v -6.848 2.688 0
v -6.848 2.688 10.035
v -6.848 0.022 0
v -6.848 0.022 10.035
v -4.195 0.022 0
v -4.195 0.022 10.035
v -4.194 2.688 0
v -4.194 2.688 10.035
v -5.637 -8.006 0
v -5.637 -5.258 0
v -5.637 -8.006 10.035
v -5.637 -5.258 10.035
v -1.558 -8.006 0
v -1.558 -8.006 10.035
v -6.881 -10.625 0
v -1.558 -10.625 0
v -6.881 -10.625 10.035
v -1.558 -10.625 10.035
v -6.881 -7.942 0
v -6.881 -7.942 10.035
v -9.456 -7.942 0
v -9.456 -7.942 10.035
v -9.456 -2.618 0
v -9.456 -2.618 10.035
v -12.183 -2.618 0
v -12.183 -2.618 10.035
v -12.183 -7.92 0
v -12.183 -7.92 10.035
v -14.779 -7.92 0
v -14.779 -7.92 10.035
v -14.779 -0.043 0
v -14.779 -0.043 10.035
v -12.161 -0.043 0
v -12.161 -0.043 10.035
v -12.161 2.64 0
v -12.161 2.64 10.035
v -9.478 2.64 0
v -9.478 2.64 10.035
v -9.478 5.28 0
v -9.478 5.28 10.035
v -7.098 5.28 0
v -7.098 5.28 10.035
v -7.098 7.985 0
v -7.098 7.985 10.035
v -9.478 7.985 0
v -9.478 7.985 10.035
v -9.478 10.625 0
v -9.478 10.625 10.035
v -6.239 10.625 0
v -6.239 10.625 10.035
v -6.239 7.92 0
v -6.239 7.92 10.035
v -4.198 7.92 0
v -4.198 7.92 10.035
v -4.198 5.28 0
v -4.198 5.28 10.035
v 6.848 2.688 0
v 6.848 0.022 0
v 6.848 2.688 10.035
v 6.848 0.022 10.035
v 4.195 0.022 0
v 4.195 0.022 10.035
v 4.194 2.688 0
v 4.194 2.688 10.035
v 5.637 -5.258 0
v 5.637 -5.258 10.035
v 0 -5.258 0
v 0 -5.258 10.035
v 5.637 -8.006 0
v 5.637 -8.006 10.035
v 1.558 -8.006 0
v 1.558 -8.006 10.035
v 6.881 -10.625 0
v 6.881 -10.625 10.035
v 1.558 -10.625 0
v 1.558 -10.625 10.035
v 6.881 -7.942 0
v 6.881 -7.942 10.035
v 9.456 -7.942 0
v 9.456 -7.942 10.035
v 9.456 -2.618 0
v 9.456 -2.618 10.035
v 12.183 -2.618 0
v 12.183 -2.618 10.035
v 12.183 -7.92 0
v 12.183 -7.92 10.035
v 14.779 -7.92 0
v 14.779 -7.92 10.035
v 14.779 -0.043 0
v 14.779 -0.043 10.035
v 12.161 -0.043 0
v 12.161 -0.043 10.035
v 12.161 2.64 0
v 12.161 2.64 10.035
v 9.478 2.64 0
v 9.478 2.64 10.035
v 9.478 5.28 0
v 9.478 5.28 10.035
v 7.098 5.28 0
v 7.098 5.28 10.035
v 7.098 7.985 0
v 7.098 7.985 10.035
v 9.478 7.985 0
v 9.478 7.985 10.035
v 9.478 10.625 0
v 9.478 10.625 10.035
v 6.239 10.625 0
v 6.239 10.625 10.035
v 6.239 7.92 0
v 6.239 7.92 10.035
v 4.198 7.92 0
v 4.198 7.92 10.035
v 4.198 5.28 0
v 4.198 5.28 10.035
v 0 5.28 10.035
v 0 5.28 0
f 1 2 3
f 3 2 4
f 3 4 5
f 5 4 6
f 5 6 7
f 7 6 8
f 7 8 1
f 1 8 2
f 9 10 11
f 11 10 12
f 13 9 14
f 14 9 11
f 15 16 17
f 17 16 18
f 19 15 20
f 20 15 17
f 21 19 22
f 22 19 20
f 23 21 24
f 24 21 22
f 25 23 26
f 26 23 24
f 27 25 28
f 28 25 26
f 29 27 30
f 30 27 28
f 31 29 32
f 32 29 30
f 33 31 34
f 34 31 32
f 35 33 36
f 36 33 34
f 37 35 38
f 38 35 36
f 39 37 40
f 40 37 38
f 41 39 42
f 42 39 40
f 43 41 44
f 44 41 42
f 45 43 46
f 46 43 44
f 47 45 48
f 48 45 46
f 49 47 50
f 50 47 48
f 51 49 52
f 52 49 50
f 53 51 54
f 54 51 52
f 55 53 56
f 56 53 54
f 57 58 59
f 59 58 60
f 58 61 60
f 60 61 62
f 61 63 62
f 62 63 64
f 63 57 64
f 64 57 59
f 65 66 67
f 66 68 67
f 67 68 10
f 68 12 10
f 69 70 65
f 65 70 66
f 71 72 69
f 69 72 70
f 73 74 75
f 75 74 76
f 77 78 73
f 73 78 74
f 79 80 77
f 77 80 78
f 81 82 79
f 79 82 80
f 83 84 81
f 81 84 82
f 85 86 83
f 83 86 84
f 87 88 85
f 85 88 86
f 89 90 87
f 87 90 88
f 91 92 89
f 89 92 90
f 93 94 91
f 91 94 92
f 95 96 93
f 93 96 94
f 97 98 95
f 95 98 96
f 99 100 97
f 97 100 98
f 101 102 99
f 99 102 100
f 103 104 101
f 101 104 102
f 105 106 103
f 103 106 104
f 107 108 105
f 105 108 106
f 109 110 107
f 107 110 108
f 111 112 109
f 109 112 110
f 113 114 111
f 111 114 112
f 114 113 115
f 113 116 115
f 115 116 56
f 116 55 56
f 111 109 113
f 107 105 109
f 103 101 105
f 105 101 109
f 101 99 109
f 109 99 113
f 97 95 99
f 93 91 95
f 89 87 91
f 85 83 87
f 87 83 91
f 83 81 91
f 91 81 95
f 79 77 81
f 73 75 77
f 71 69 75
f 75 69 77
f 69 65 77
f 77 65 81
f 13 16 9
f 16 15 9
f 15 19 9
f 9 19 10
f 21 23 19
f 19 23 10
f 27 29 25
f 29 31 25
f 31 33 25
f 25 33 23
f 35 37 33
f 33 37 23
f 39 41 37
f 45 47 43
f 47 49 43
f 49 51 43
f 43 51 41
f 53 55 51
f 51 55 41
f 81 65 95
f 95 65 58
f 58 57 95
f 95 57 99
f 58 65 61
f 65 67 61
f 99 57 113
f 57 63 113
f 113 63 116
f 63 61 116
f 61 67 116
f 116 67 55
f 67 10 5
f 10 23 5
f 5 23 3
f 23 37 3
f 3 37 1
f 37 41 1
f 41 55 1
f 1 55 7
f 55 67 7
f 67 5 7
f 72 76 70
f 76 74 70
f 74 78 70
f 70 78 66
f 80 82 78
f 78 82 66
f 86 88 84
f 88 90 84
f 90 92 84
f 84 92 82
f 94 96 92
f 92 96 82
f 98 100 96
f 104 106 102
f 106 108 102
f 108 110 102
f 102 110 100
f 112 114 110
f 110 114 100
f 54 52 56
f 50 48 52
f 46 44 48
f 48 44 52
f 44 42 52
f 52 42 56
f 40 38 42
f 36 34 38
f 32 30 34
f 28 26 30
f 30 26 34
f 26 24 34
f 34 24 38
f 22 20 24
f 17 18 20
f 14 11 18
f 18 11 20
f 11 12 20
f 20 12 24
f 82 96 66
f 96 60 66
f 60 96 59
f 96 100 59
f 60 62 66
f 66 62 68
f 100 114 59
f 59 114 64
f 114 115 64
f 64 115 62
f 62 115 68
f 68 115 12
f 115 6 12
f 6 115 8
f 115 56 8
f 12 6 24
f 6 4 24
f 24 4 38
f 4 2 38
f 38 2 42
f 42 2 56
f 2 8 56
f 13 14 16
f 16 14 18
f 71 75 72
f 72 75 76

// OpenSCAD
module invaders_v2_2() 
{
	polyhedron(
		points=[
			[-6.848057, 2.68762, 1.037121e-05],
			[-6.848057, 2.68762, 10.03545],
			[-6.848057, 0.02210236, 1.037121e-05],
			[-6.848057, 0.02210236, 1.037121e-05],
			[-6.848057, 2.68762, 10.03545],
			[-6.848057, 0.02210236, 10.03545],
			[-6.848057, 0.02210236, 1.037121e-05],
			[-6.848057, 0.02210236, 10.03545],
			[-4.195431, 0.02210236, 1.037121e-05],
			[-4.195431, 0.02210236, 1.037121e-05],
			[-6.848057, 0.02210236, 10.03545],
			[-4.195431, 0.02210236, 10.03545],
			[-4.195431, 0.02210236, 1.037121e-05],
			[-4.195431, 0.02210236, 10.03545],
			[-4.194324, 2.68762, 0.0],
			[-4.194324, 2.68762, 0.0],
			[-4.195431, 0.02210236, 10.03545],
			[-4.194324, 2.68762, 10.03545],
			[-4.194324, 2.68762, 0.0],
			[-4.194324, 2.68762, 10.03545],
			[-6.848057, 2.68762, 1.037121e-05],
			[-6.848057, 2.68762, 1.037121e-05],
			[-4.194324, 2.68762, 10.03545],
			[-6.848057, 2.68762, 10.03545],
			[-5.636768, -8.006418, 5.245209e-06],
			[-5.636768, -5.258268, 5.245209e-06],
			[-5.636768, -8.006418, 10.03545],
			[-5.636768, -8.006418, 10.03545],
			[-5.636768, -5.258268, 5.245209e-06],
			[-5.636768, -5.258268, 10.03545],
			[-1.557995, -8.006418, 5.245209e-06],
			[-5.636768, -8.006418, 5.245209e-06],
			[-1.557995, -8.006418, 10.03545],
			[-1.557995, -8.006418, 10.03545],
			[-5.636768, -8.006418, 5.245209e-06],
			[-5.636768, -8.006418, 10.03545],
			[-6.881184, -10.62473, 5.245209e-06],
			[-1.557995, -10.62473, 5.245209e-06],
			[-6.881184, -10.62473, 10.03545],
			[-6.881184, -10.62473, 10.03545],
			[-1.557995, -10.62473, 5.245209e-06],
			[-1.557995, -10.62473, 10.03545],
			[-6.881184, -7.9415, 5.245209e-06],
			[-6.881184, -10.62473, 5.245209e-06],
			[-6.881184, -7.9415, 10.03545],
			[-6.881184, -7.9415, 10.03545],
			[-6.881184, -10.62473, 5.245209e-06],
			[-6.881184, -10.62473, 10.03545],
			[-9.456219, -7.9415, 5.245209e-06],
			[-6.881184, -7.9415, 5.245209e-06],
			[-9.456219, -7.9415, 10.03545],
			[-9.456219, -7.9415, 10.03545],
			[-6.881184, -7.9415, 5.245209e-06],
			[-6.881184, -7.9415, 10.03545],
			[-9.456219, -2.618313, 5.245209e-06],
			[-9.456219, -7.9415, 5.245209e-06],
			[-9.456219, -2.618313, 10.03545],
			[-9.456219, -2.618313, 10.03545],
			[-9.456219, -7.9415, 5.245209e-06],
			[-9.456219, -7.9415, 10.03545],
			[-12.18273, -2.618313, 5.245209e-06],
			[-9.456219, -2.618313, 5.245209e-06],
			[-12.18273, -2.618313, 10.03545],
			[-12.18273, -2.618313, 10.03545],
			[-9.456219, -2.618313, 5.245209e-06],
			[-9.456219, -2.618313, 10.03545],
			[-12.18273, -7.919863, 5.245209e-06],
			[-12.18273, -2.618313, 5.245209e-06],
			[-12.18273, -7.919863, 10.03545],
			[-12.18273, -7.919863, 10.03545],
			[-12.18273, -2.618313, 5.245209e-06],
			[-12.18273, -2.618313, 10.03545],
			[-14.77941, -7.919863, 5.245209e-06],
			[-12.18273, -7.919863, 5.245209e-06],
			[-14.77941, -7.919863, 10.03545],
			[-14.77941, -7.919863, 10.03545],
			[-12.18273, -7.919863, 5.245209e-06],
			[-12.18273, -7.919863, 10.03545],
			[-14.77941, -0.04327393, 5.245209e-06],
			[-14.77941, -7.919863, 5.245209e-06],
			[-14.77941, -0.04327393, 10.03545],
			[-14.77941, -0.04327393, 10.03545],
			[-14.77941, -7.919863, 5.245209e-06],
			[-14.77941, -7.919863, 10.03545],
			[-12.16109, -0.04327393, 5.245209e-06],
			[-14.77941, -0.04327393, 5.245209e-06],
			[-12.16109, -0.04327393, 10.03545],
			[-12.16109, -0.04327393, 10.03545],
			[-14.77941, -0.04327393, 5.245209e-06],
			[-14.77941, -0.04327393, 10.03545],
			[-12.16109, 2.639957, 5.245209e-06],
			[-12.16109, -0.04327393, 5.245209e-06],
			[-12.16109, 2.639957, 10.03545],
			[-12.16109, 2.639957, 10.03545],
			[-12.16109, -0.04327393, 5.245209e-06],
			[-12.16109, -0.04327393, 10.03545],
			[-9.477863, 2.639957, 5.245209e-06],
			[-12.16109, 2.639957, 5.245209e-06],
			[-9.477863, 2.639957, 10.03545],
			[-9.477863, 2.639957, 10.03545],
			[-12.16109, 2.639957, 5.245209e-06],
			[-12.16109, 2.639957, 10.03545],
			[-9.477863, 5.279907, 5.245209e-06],
			[-9.477863, 2.639957, 5.245209e-06],
			[-9.477863, 5.279907, 10.03545],
			[-9.477863, 5.279907, 10.03545],
			[-9.477863, 2.639957, 5.245209e-06],
			[-9.477863, 2.639957, 10.03545],
			[-7.097576, 5.279907, 5.245209e-06],
			[-9.477863, 5.279907, 5.245209e-06],
			[-7.097576, 5.279907, 10.03545],
			[-7.097576, 5.279907, 10.03545],
			[-9.477863, 5.279907, 5.245209e-06],
			[-9.477863, 5.279907, 10.03545],
			[-7.097576, 7.984783, 5.245209e-06],
			[-7.097576, 5.279907, 5.245209e-06],
			[-7.097576, 7.984783, 10.03545],
			[-7.097576, 7.984783, 10.03545],
			[-7.097576, 5.279907, 5.245209e-06],
			[-7.097576, 5.279907, 10.03545],
			[-9.477863, 7.984783, 5.245209e-06],
			[-7.097576, 7.984783, 5.245209e-06],
			[-9.477863, 7.984783, 10.03545],
			[-9.477863, 7.984783, 10.03545],
			[-7.097576, 7.984783, 5.245209e-06],
			[-7.097576, 7.984783, 10.03545],
			[-9.477863, 10.62473, 5.245209e-06],
			[-9.477863, 7.984783, 5.245209e-06],
			[-9.477863, 10.62473, 10.03545],
			[-9.477863, 10.62473, 10.03545],
			[-9.477863, 7.984783, 5.245209e-06],
			[-9.477863, 7.984783, 10.03545],
			[-6.238689, 10.62473, 5.245209e-06],
			[-9.477863, 10.62473, 5.245209e-06],
			[-6.238689, 10.62473, 10.03545],
			[-6.238689, 10.62473, 10.03545],
			[-9.477863, 10.62473, 5.245209e-06],
			[-9.477863, 10.62473, 10.03545],
			[-6.238689, 7.919868, 5.245209e-06],
			[-6.238689, 10.62473, 5.245209e-06],
			[-6.238689, 7.919868, 10.03545],
			[-6.238689, 7.919868, 10.03545],
			[-6.238689, 10.62473, 5.245209e-06],
			[-6.238689, 10.62473, 10.03545],
			[-4.197956, 7.919868, 5.245209e-06],
			[-6.238689, 7.919868, 5.245209e-06],
			[-4.197956, 7.919868, 10.03545],
			[-4.197956, 7.919868, 10.03545],
			[-6.238689, 7.919868, 5.245209e-06],
			[-6.238689, 7.919868, 10.03545],
			[-4.197956, 5.279907, 5.245209e-06],
			[-4.197956, 7.919868, 5.245209e-06],
			[-4.197956, 5.279907, 10.03545],
			[-4.197956, 5.279907, 10.03545],
			[-4.197956, 7.919868, 5.245209e-06],
			[-4.197956, 7.919868, 10.03545],
			[6.848053, 2.68762, 1.561642e-05],
			[6.848053, 0.02210236, 1.561642e-05],
			[6.848053, 2.68762, 10.03546],
			[6.848053, 2.68762, 10.03546],
			[6.848053, 0.02210236, 1.561642e-05],
			[6.848053, 0.02210236, 10.03546],
			[6.848053, 0.02210236, 1.561642e-05],
			[4.195435, 0.02210236, 1.561642e-05],
			[6.848053, 0.02210236, 10.03546],
			[6.848053, 0.02210236, 10.03546],
			[4.195435, 0.02210236, 1.561642e-05],
			[4.195435, 0.02210236, 10.03546],
			[4.195435, 0.02210236, 1.561642e-05],
			[4.194332, 2.68762, 5.245209e-06],
			[4.195435, 0.02210236, 10.03546],
			[4.195435, 0.02210236, 10.03546],
			[4.194332, 2.68762, 5.245209e-06],
			[4.194332, 2.68762, 10.03546],
			[4.194332, 2.68762, 5.245209e-06],
			[6.848053, 2.68762, 1.561642e-05],
			[4.194332, 2.68762, 10.03546],
			[4.194332, 2.68762, 10.03546],
			[6.848053, 2.68762, 1.561642e-05],
			[6.848053, 2.68762, 10.03546],
			[5.636776, -5.258268, 1.037121e-05],
			[5.636776, -5.258268, 10.03546],
			[-3.814697e-06, -5.258268, 5.245209e-06],
			[5.636776, -5.258268, 10.03546],
			[-3.814697e-06, -5.258268, 10.03545],
			[-3.814697e-06, -5.258268, 5.245209e-06],
			[-3.814697e-06, -5.258268, 5.245209e-06],
			[-3.814697e-06, -5.258268, 10.03545],
			[-5.636768, -5.258268, 5.245209e-06],
			[-3.814697e-06, -5.258268, 10.03545],
			[-5.636768, -5.258268, 10.03545],
			[-5.636768, -5.258268, 5.245209e-06],
			[5.636776, -8.006418, 1.037121e-05],
			[5.636776, -8.006418, 10.03546],
			[5.636776, -5.258268, 1.037121e-05],
			[5.636776, -5.258268, 1.037121e-05],
			[5.636776, -8.006418, 10.03546],
			[5.636776, -5.258268, 10.03546],
			[1.557999, -8.006418, 5.245209e-06],
			[1.557999, -8.006418, 10.03545],
			[5.636776, -8.006418, 1.037121e-05],
			[5.636776, -8.006418, 1.037121e-05],
			[1.557999, -8.006418, 10.03545],
			[5.636776, -8.006418, 10.03546],
			[6.881191, -10.62473, 1.037121e-05],
			[6.881191, -10.62473, 10.03546],
			[1.557999, -10.62473, 5.245209e-06],
			[1.557999, -10.62473, 5.245209e-06],
			[6.881191, -10.62473, 10.03546],
			[1.557999, -10.62473, 10.03545],
			[6.881191, -7.9415, 1.037121e-05],
			[6.881191, -7.9415, 10.03546],
			[6.881191, -10.62473, 1.037121e-05],
			[6.881191, -10.62473, 1.037121e-05],
			[6.881191, -7.9415, 10.03546],
			[6.881191, -10.62473, 10.03546],
			[9.456219, -7.9415, 1.037121e-05],
			[9.456219, -7.9415, 10.03546],
			[6.881191, -7.9415, 1.037121e-05],
			[6.881191, -7.9415, 1.037121e-05],
			[9.456219, -7.9415, 10.03546],
			[6.881191, -7.9415, 10.03546],
			[9.456219, -2.618313, 1.037121e-05],
			[9.456219, -2.618313, 10.03546],
			[9.456219, -7.9415, 1.037121e-05],
			[9.456219, -7.9415, 1.037121e-05],
			[9.456219, -2.618313, 10.03546],
			[9.456219, -7.9415, 10.03546],
			[12.18273, -2.618313, 1.037121e-05],
			[12.18273, -2.618313, 10.03546],
			[9.456219, -2.618313, 1.037121e-05],
			[9.456219, -2.618313, 1.037121e-05],
			[12.18273, -2.618313, 10.03546],
			[9.456219, -2.618313, 10.03546],
			[12.18273, -7.919863, 1.037121e-05],
			[12.18273, -7.919863, 10.03546],
			[12.18273, -2.618313, 1.037121e-05],
			[12.18273, -2.618313, 1.037121e-05],
			[12.18273, -7.919863, 10.03546],
			[12.18273, -2.618313, 10.03546],
			[14.77941, -7.919863, 1.037121e-05],
			[14.77941, -7.919863, 10.03546],
			[12.18273, -7.919863, 1.037121e-05],
			[12.18273, -7.919863, 1.037121e-05],
			[14.77941, -7.919863, 10.03546],
			[12.18273, -7.919863, 10.03546],
			[14.77941, -0.04327393, 1.037121e-05],
			[14.77941, -0.04327393, 10.03546],
			[14.77941, -7.919863, 1.037121e-05],
			[14.77941, -7.919863, 1.037121e-05],
			[14.77941, -0.04327393, 10.03546],
			[14.77941, -7.919863, 10.03546],
			[12.16109, -0.04327393, 1.037121e-05],
			[12.16109, -0.04327393, 10.03546],
			[14.77941, -0.04327393, 1.037121e-05],
			[14.77941, -0.04327393, 1.037121e-05],
			[12.16109, -0.04327393, 10.03546],
			[14.77941, -0.04327393, 10.03546],
			[12.16109, 2.639957, 1.037121e-05],
			[12.16109, 2.639957, 10.03546],
			[12.16109, -0.04327393, 1.037121e-05],
			[12.16109, -0.04327393, 1.037121e-05],
			[12.16109, 2.639957, 10.03546],
			[12.16109, -0.04327393, 10.03546],
			[9.477867, 2.639957, 1.037121e-05],
			[9.477867, 2.639957, 10.03546],
			[12.16109, 2.639957, 1.037121e-05],
			[12.16109, 2.639957, 1.037121e-05],
			[9.477867, 2.639957, 10.03546],
			[12.16109, 2.639957, 10.03546],
			[9.477867, 5.279907, 1.037121e-05],
			[9.477867, 5.279907, 10.03546],
			[9.477867, 2.639957, 1.037121e-05],
			[9.477867, 2.639957, 1.037121e-05],
			[9.477867, 5.279907, 10.03546],
			[9.477867, 2.639957, 10.03546],
			[7.09758, 5.279907, 1.037121e-05],
			[7.09758, 5.279907, 10.03546],
			[9.477867, 5.279907, 1.037121e-05],
			[9.477867, 5.279907, 1.037121e-05],
			[7.09758, 5.279907, 10.03546],
			[9.477867, 5.279907, 10.03546],
			[7.09758, 7.984783, 1.037121e-05],
			[7.09758, 7.984783, 10.03546],
			[7.09758, 5.279907, 1.037121e-05],
			[7.09758, 5.279907, 1.037121e-05],
			[7.09758, 7.984783, 10.03546],
			[7.09758, 5.279907, 10.03546],
			[9.477867, 7.984783, 1.037121e-05],
			[9.477867, 7.984783, 10.03546],
			[7.09758, 7.984783, 1.037121e-05],
			[7.09758, 7.984783, 1.037121e-05],
			[9.477867, 7.984783, 10.03546],
			[7.09758, 7.984783, 10.03546],
			[9.477867, 10.62473, 1.037121e-05],
			[9.477867, 10.62473, 10.03546],
			[9.477867, 7.984783, 1.037121e-05],
			[9.477867, 7.984783, 1.037121e-05],
			[9.477867, 10.62473, 10.03546],
			[9.477867, 7.984783, 10.03546],
			[6.238686, 10.62473, 1.037121e-05],
			[6.238686, 10.62473, 10.03546],
			[9.477867, 10.62473, 1.037121e-05],
			[9.477867, 10.62473, 1.037121e-05],
			[6.238686, 10.62473, 10.03546],
			[9.477867, 10.62473, 10.03546],
			[6.238686, 7.919868, 1.037121e-05],
			[6.238686, 7.919868, 10.03546],
			[6.238686, 10.62473, 1.037121e-05],
			[6.238686, 10.62473, 1.037121e-05],
			[6.238686, 7.919868, 10.03546],
			[6.238686, 10.62473, 10.03546],
			[4.19796, 7.919868, 5.245209e-06],
			[4.19796, 7.919868, 10.03546],
			[6.238686, 7.919868, 1.037121e-05],
			[6.238686, 7.919868, 1.037121e-05],
			[4.19796, 7.919868, 10.03546],
			[6.238686, 7.919868, 10.03546],
			[4.19796, 5.279907, 5.245209e-06],
			[4.19796, 5.279907, 10.03546],
			[4.19796, 7.919868, 5.245209e-06],
			[4.19796, 7.919868, 5.245209e-06],
			[4.19796, 5.279907, 10.03546],
			[4.19796, 7.919868, 10.03546],
			[4.19796, 5.279907, 10.03546],
			[4.19796, 5.279907, 5.245209e-06],
			[-3.814697e-06, 5.279907, 10.03545],
			[4.19796, 5.279907, 5.245209e-06],
			[-3.814697e-06, 5.279907, 5.245209e-06],
			[-3.814697e-06, 5.279907, 10.03545],
			[-3.814697e-06, 5.279907, 10.03545],
			[-3.814697e-06, 5.279907, 5.245209e-06],
			[-4.197956, 5.279907, 10.03545],
			[-3.814697e-06, 5.279907, 5.245209e-06],
			[-4.197956, 5.279907, 5.245209e-06],
			[-4.197956, 5.279907, 10.03545],
			[4.19796, 7.919868, 5.245209e-06],
			[6.238686, 7.919868, 1.037121e-05],
			[4.19796, 5.279907, 5.245209e-06],
			[6.238686, 10.62473, 1.037121e-05],
			[9.477867, 10.62473, 1.037121e-05],
			[6.238686, 7.919868, 1.037121e-05],
			[9.477867, 7.984783, 1.037121e-05],
			[7.09758, 7.984783, 1.037121e-05],
			[9.477867, 10.62473, 1.037121e-05],
			[9.477867, 10.62473, 1.037121e-05],
			[7.09758, 7.984783, 1.037121e-05],
			[6.238686, 7.919868, 1.037121e-05],
			[7.09758, 7.984783, 1.037121e-05],
			[7.09758, 5.279907, 1.037121e-05],
			[6.238686, 7.919868, 1.037121e-05],
			[6.238686, 7.919868, 1.037121e-05],
			[7.09758, 5.279907, 1.037121e-05],
			[4.19796, 5.279907, 5.245209e-06],
			[9.477867, 5.279907, 1.037121e-05],
			[9.477867, 2.639957, 1.037121e-05],
			[7.09758, 5.279907, 1.037121e-05],
			[12.16109, 2.639957, 1.037121e-05],
			[12.16109, -0.04327393, 1.037121e-05],
			[9.477867, 2.639957, 1.037121e-05],
			[14.77941, -0.04327393, 1.037121e-05],
			[14.77941, -7.919863, 1.037121e-05],
			[12.16109, -0.04327393, 1.037121e-05],
			[12.18273, -7.919863, 1.037121e-05],
			[12.18273, -2.618313, 1.037121e-05],
			[14.77941, -7.919863, 1.037121e-05],
			[14.77941, -7.919863, 1.037121e-05],
			[12.18273, -2.618313, 1.037121e-05],
			[12.16109, -0.04327393, 1.037121e-05],
			[12.18273, -2.618313, 1.037121e-05],
			[9.456219, -2.618313, 1.037121e-05],
			[12.16109, -0.04327393, 1.037121e-05],
			[12.16109, -0.04327393, 1.037121e-05],
			[9.456219, -2.618313, 1.037121e-05],
			[9.477867, 2.639957, 1.037121e-05],
			[9.456219, -7.9415, 1.037121e-05],
			[6.881191, -7.9415, 1.037121e-05],
			[9.456219, -2.618313, 1.037121e-05],
			[6.881191, -10.62473, 1.037121e-05],
			[1.557999, -10.62473, 5.245209e-06],
			[6.881191, -7.9415, 1.037121e-05],
			[1.557999, -8.006418, 5.245209e-06],
			[5.636776, -8.006418, 1.037121e-05],
			[1.557999, -10.62473, 5.245209e-06],
			[1.557999, -10.62473, 5.245209e-06],
			[5.636776, -8.006418, 1.037121e-05],
			[6.881191, -7.9415, 1.037121e-05],
			[5.636776, -8.006418, 1.037121e-05],
			[5.636776, -5.258268, 1.037121e-05],
			[6.881191, -7.9415, 1.037121e-05],
			[6.881191, -7.9415, 1.037121e-05],
			[5.636776, -5.258268, 1.037121e-05],
			[9.456219, -2.618313, 1.037121e-05],
			[-1.557995, -8.006418, 5.245209e-06],
			[-1.557995, -10.62473, 5.245209e-06],
			[-5.636768, -8.006418, 5.245209e-06],
			[-1.557995, -10.62473, 5.245209e-06],
			[-6.881184, -10.62473, 5.245209e-06],
			[-5.636768, -8.006418, 5.245209e-06],
			[-6.881184, -10.62473, 5.245209e-06],
			[-6.881184, -7.9415, 5.245209e-06],
			[-5.636768, -8.006418, 5.245209e-06],
			[-5.636768, -8.006418, 5.245209e-06],
			[-6.881184, -7.9415, 5.245209e-06],
			[-5.636768, -5.258268, 5.245209e-06],
			[-9.456219, -7.9415, 5.245209e-06],
			[-9.456219, -2.618313, 5.245209e-06],
			[-6.881184, -7.9415, 5.245209e-06],
			[-6.881184, -7.9415, 5.245209e-06],
			[-9.456219, -2.618313, 5.245209e-06],
			[-5.636768, -5.258268, 5.245209e-06],
			[-12.18273, -7.919863, 5.245209e-06],
			[-14.77941, -7.919863, 5.245209e-06],
			[-12.18273, -2.618313, 5.245209e-06],
			[-14.77941, -7.919863, 5.245209e-06],
			[-14.77941, -0.04327393, 5.245209e-06],
			[-12.18273, -2.618313, 5.245209e-06],
			[-14.77941, -0.04327393, 5.245209e-06],
			[-12.16109, -0.04327393, 5.245209e-06],
			[-12.18273, -2.618313, 5.245209e-06],
			[-12.18273, -2.618313, 5.245209e-06],
			[-12.16109, -0.04327393, 5.245209e-06],
			[-9.456219, -2.618313, 5.245209e-06],
			[-12.16109, 2.639957, 5.245209e-06],
			[-9.477863, 2.639957, 5.245209e-06],
			[-12.16109, -0.04327393, 5.245209e-06],
			[-12.16109, -0.04327393, 5.245209e-06],
			[-9.477863, 2.639957, 5.245209e-06],
			[-9.456219, -2.618313, 5.245209e-06],
			[-9.477863, 5.279907, 5.245209e-06],
			[-7.097576, 5.279907, 5.245209e-06],
			[-9.477863, 2.639957, 5.245209e-06],
			[-9.477863, 7.984783, 5.245209e-06],
			[-9.477863, 10.62473, 5.245209e-06],
			[-7.097576, 7.984783, 5.245209e-06],
			[-9.477863, 10.62473, 5.245209e-06],
			[-6.238689, 10.62473, 5.245209e-06],
			[-7.097576, 7.984783, 5.245209e-06],
			[-6.238689, 10.62473, 5.245209e-06],
			[-6.238689, 7.919868, 5.245209e-06],
			[-7.097576, 7.984783, 5.245209e-06],
			[-7.097576, 7.984783, 5.245209e-06],
			[-6.238689, 7.919868, 5.245209e-06],
			[-7.097576, 5.279907, 5.245209e-06],
			[-4.197956, 7.919868, 5.245209e-06],
			[-4.197956, 5.279907, 5.245209e-06],
			[-6.238689, 7.919868, 5.245209e-06],
			[-6.238689, 7.919868, 5.245209e-06],
			[-4.197956, 5.279907, 5.245209e-06],
			[-7.097576, 5.279907, 5.245209e-06],
			[9.456219, -2.618313, 1.037121e-05],
			[5.636776, -5.258268, 1.037121e-05],
			[9.477867, 2.639957, 1.037121e-05],
			[9.477867, 2.639957, 1.037121e-05],
			[5.636776, -5.258268, 1.037121e-05],
			[6.848053, 0.02210236, 1.561642e-05],
			[6.848053, 0.02210236, 1.561642e-05],
			[6.848053, 2.68762, 1.561642e-05],
			[9.477867, 2.639957, 1.037121e-05],
			[9.477867, 2.639957, 1.037121e-05],
			[6.848053, 2.68762, 1.561642e-05],
			[7.09758, 5.279907, 1.037121e-05],
			[6.848053, 0.02210236, 1.561642e-05],
			[5.636776, -5.258268, 1.037121e-05],
			[4.195435, 0.02210236, 1.561642e-05],
			[5.636776, -5.258268, 1.037121e-05],
			[-3.814697e-06, -5.258268, 5.245209e-06],
			[4.195435, 0.02210236, 1.561642e-05],
			[7.09758, 5.279907, 1.037121e-05],
			[6.848053, 2.68762, 1.561642e-05],
			[4.19796, 5.279907, 5.245209e-06],
			[6.848053, 2.68762, 1.561642e-05],
			[4.194332, 2.68762, 5.245209e-06],
			[4.19796, 5.279907, 5.245209e-06],
			[4.19796, 5.279907, 5.245209e-06],
			[4.194332, 2.68762, 5.245209e-06],
			[-3.814697e-06, 5.279907, 5.245209e-06],
			[4.194332, 2.68762, 5.245209e-06],
			[4.195435, 0.02210236, 1.561642e-05],
			[-3.814697e-06, 5.279907, 5.245209e-06],
			[4.195435, 0.02210236, 1.561642e-05],
			[-3.814697e-06, -5.258268, 5.245209e-06],
			[-3.814697e-06, 5.279907, 5.245209e-06],
			[-3.814697e-06, 5.279907, 5.245209e-06],
			[-3.814697e-06, -5.258268, 5.245209e-06],
			[-4.197956, 5.279907, 5.245209e-06],
			[-3.814697e-06, -5.258268, 5.245209e-06],
			[-5.636768, -5.258268, 5.245209e-06],
			[-4.195431, 0.02210236, 1.037121e-05],
			[-5.636768, -5.258268, 5.245209e-06],
			[-9.456219, -2.618313, 5.245209e-06],
			[-4.195431, 0.02210236, 1.037121e-05],
			[-4.195431, 0.02210236, 1.037121e-05],
			[-9.456219, -2.618313, 5.245209e-06],
			[-6.848057, 0.02210236, 1.037121e-05],
			[-9.456219, -2.618313, 5.245209e-06],
			[-9.477863, 2.639957, 5.245209e-06],
			[-6.848057, 0.02210236, 1.037121e-05],
			[-6.848057, 0.02210236, 1.037121e-05],
			[-9.477863, 2.639957, 5.245209e-06],
			[-6.848057, 2.68762, 1.037121e-05],
			[-9.477863, 2.639957, 5.245209e-06],
			[-7.097576, 5.279907, 5.245209e-06],
			[-6.848057, 2.68762, 1.037121e-05],
			[-7.097576, 5.279907, 5.245209e-06],
			[-4.197956, 5.279907, 5.245209e-06],
			[-6.848057, 2.68762, 1.037121e-05],
			[-6.848057, 2.68762, 1.037121e-05],
			[-4.197956, 5.279907, 5.245209e-06],
			[-4.194324, 2.68762, 0.0],
			[-4.197956, 5.279907, 5.245209e-06],
			[-3.814697e-06, -5.258268, 5.245209e-06],
			[-4.194324, 2.68762, 0.0],
			[-3.814697e-06, -5.258268, 5.245209e-06],
			[-4.195431, 0.02210236, 1.037121e-05],
			[-4.194324, 2.68762, 0.0],
			[1.557999, -8.006418, 10.03545],
			[1.557999, -10.62473, 10.03545],
			[5.636776, -8.006418, 10.03546],
			[1.557999, -10.62473, 10.03545],
			[6.881191, -10.62473, 10.03546],
			[5.636776, -8.006418, 10.03546],
			[6.881191, -10.62473, 10.03546],
			[6.881191, -7.9415, 10.03546],
			[5.636776, -8.006418, 10.03546],
			[5.636776, -8.006418, 10.03546],
			[6.881191, -7.9415, 10.03546],
			[5.636776, -5.258268, 10.03546],
			[9.456219, -7.9415, 10.03546],
			[9.456219, -2.618313, 10.03546],
			[6.881191, -7.9415, 10.03546],
			[6.881191, -7.9415, 10.03546],
			[9.456219, -2.618313, 10.03546],
			[5.636776, -5.258268, 10.03546],
			[12.18273, -7.919863, 10.03546],
			[14.77941, -7.919863, 10.03546],
			[12.18273, -2.618313, 10.03546],
			[14.77941, -7.919863, 10.03546],
			[14.77941, -0.04327393, 10.03546],
			[12.18273, -2.618313, 10.03546],
			[14.77941, -0.04327393, 10.03546],
			[12.16109, -0.04327393, 10.03546],
			[12.18273, -2.618313, 10.03546],
			[12.18273, -2.618313, 10.03546],
			[12.16109, -0.04327393, 10.03546],
			[9.456219, -2.618313, 10.03546],
			[12.16109, 2.639957, 10.03546],
			[9.477867, 2.639957, 10.03546],
			[12.16109, -0.04327393, 10.03546],
			[12.16109, -0.04327393, 10.03546],
			[9.477867, 2.639957, 10.03546],
			[9.456219, -2.618313, 10.03546],
			[9.477867, 5.279907, 10.03546],
			[7.09758, 5.279907, 10.03546],
			[9.477867, 2.639957, 10.03546],
			[9.477867, 7.984783, 10.03546],
			[9.477867, 10.62473, 10.03546],
			[7.09758, 7.984783, 10.03546],
			[9.477867, 10.62473, 10.03546],
			[6.238686, 10.62473, 10.03546],
			[7.09758, 7.984783, 10.03546],
			[6.238686, 10.62473, 10.03546],
			[6.238686, 7.919868, 10.03546],
			[7.09758, 7.984783, 10.03546],
			[7.09758, 7.984783, 10.03546],
			[6.238686, 7.919868, 10.03546],
			[7.09758, 5.279907, 10.03546],
			[4.19796, 7.919868, 10.03546],
			[4.19796, 5.279907, 10.03546],
			[6.238686, 7.919868, 10.03546],
			[6.238686, 7.919868, 10.03546],
			[4.19796, 5.279907, 10.03546],
			[7.09758, 5.279907, 10.03546],
			[-4.197956, 7.919868, 10.03545],
			[-6.238689, 7.919868, 10.03545],
			[-4.197956, 5.279907, 10.03545],
			[-6.238689, 10.62473, 10.03545],
			[-9.477863, 10.62473, 10.03545],
			[-6.238689, 7.919868, 10.03545],
			[-9.477863, 7.984783, 10.03545],
			[-7.097576, 7.984783, 10.03545],
			[-9.477863, 10.62473, 10.03545],
			[-9.477863, 10.62473, 10.03545],
			[-7.097576, 7.984783, 10.03545],
			[-6.238689, 7.919868, 10.03545],
			[-7.097576, 7.984783, 10.03545],
			[-7.097576, 5.279907, 10.03545],
			[-6.238689, 7.919868, 10.03545],
			[-6.238689, 7.919868, 10.03545],
			[-7.097576, 5.279907, 10.03545],
			[-4.197956, 5.279907, 10.03545],
			[-9.477863, 5.279907, 10.03545],
			[-9.477863, 2.639957, 10.03545],
			[-7.097576, 5.279907, 10.03545],
			[-12.16109, 2.639957, 10.03545],
			[-12.16109, -0.04327393, 10.03545],
			[-9.477863, 2.639957, 10.03545],
			[-14.77941, -0.04327393, 10.03545],
			[-14.77941, -7.919863, 10.03545],
			[-12.16109, -0.04327393, 10.03545],
			[-12.18273, -7.919863, 10.03545],
			[-12.18273, -2.618313, 10.03545],
			[-14.77941, -7.919863, 10.03545],
			[-14.77941, -7.919863, 10.03545],
			[-12.18273, -2.618313, 10.03545],
			[-12.16109, -0.04327393, 10.03545],
			[-12.18273, -2.618313, 10.03545],
			[-9.456219, -2.618313, 10.03545],
			[-12.16109, -0.04327393, 10.03545],
			[-12.16109, -0.04327393, 10.03545],
			[-9.456219, -2.618313, 10.03545],
			[-9.477863, 2.639957, 10.03545],
			[-9.456219, -7.9415, 10.03545],
			[-6.881184, -7.9415, 10.03545],
			[-9.456219, -2.618313, 10.03545],
			[-6.881184, -10.62473, 10.03545],
			[-1.557995, -10.62473, 10.03545],
			[-6.881184, -7.9415, 10.03545],
			[-1.557995, -8.006418, 10.03545],
			[-5.636768, -8.006418, 10.03545],
			[-1.557995, -10.62473, 10.03545],
			[-1.557995, -10.62473, 10.03545],
			[-5.636768, -8.006418, 10.03545],
			[-6.881184, -7.9415, 10.03545],
			[-5.636768, -8.006418, 10.03545],
			[-5.636768, -5.258268, 10.03545],
			[-6.881184, -7.9415, 10.03545],
			[-6.881184, -7.9415, 10.03545],
			[-5.636768, -5.258268, 10.03545],
			[-9.456219, -2.618313, 10.03545],
			[9.456219, -2.618313, 10.03546],
			[9.477867, 2.639957, 10.03546],
			[5.636776, -5.258268, 10.03546],
			[9.477867, 2.639957, 10.03546],
			[6.848053, 0.02210236, 10.03546],
			[5.636776, -5.258268, 10.03546],
			[6.848053, 0.02210236, 10.03546],
			[9.477867, 2.639957, 10.03546],
			[6.848053, 2.68762, 10.03546],
			[9.477867, 2.639957, 10.03546],
			[7.09758, 5.279907, 10.03546],
			[6.848053, 2.68762, 10.03546],
			[6.848053, 0.02210236, 10.03546],
			[4.195435, 0.02210236, 10.03546],
			[5.636776, -5.258268, 10.03546],
			[5.636776, -5.258268, 10.03546],
			[4.195435, 0.02210236, 10.03546],
			[-3.814697e-06, -5.258268, 10.03545],
			[7.09758, 5.279907, 10.03546],
			[4.19796, 5.279907, 10.03546],
			[6.848053, 2.68762, 10.03546],
			[6.848053, 2.68762, 10.03546],
			[4.19796, 5.279907, 10.03546],
			[4.194332, 2.68762, 10.03546],
			[4.19796, 5.279907, 10.03546],
			[-3.814697e-06, 5.279907, 10.03545],
			[4.194332, 2.68762, 10.03546],
			[4.194332, 2.68762, 10.03546],
			[-3.814697e-06, 5.279907, 10.03545],
			[4.195435, 0.02210236, 10.03546],
			[4.195435, 0.02210236, 10.03546],
			[-3.814697e-06, 5.279907, 10.03545],
			[-3.814697e-06, -5.258268, 10.03545],
			[-3.814697e-06, -5.258268, 10.03545],
			[-3.814697e-06, 5.279907, 10.03545],
			[-5.636768, -5.258268, 10.03545],
			[-3.814697e-06, 5.279907, 10.03545],
			[-4.195431, 0.02210236, 10.03545],
			[-5.636768, -5.258268, 10.03545],
			[-4.195431, 0.02210236, 10.03545],
			[-3.814697e-06, 5.279907, 10.03545],
			[-4.194324, 2.68762, 10.03545],
			[-3.814697e-06, 5.279907, 10.03545],
			[-4.197956, 5.279907, 10.03545],
			[-4.194324, 2.68762, 10.03545],
			[-5.636768, -5.258268, 10.03545],
			[-4.195431, 0.02210236, 10.03545],
			[-9.456219, -2.618313, 10.03545],
			[-4.195431, 0.02210236, 10.03545],
			[-6.848057, 0.02210236, 10.03545],
			[-9.456219, -2.618313, 10.03545],
			[-9.456219, -2.618313, 10.03545],
			[-6.848057, 0.02210236, 10.03545],
			[-9.477863, 2.639957, 10.03545],
			[-6.848057, 0.02210236, 10.03545],
			[-6.848057, 2.68762, 10.03545],
			[-9.477863, 2.639957, 10.03545],
			[-9.477863, 2.639957, 10.03545],
			[-6.848057, 2.68762, 10.03545],
			[-7.097576, 5.279907, 10.03545],
			[-7.097576, 5.279907, 10.03545],
			[-6.848057, 2.68762, 10.03545],
			[-4.197956, 5.279907, 10.03545],
			[-6.848057, 2.68762, 10.03545],
			[-4.194324, 2.68762, 10.03545],
			[-4.197956, 5.279907, 10.03545],
			[-1.557995, -8.006418, 5.245209e-06],
			[-1.557995, -8.006418, 10.03545],
			[-1.557995, -10.62473, 5.245209e-06],
			[-1.557995, -10.62473, 5.245209e-06],
			[-1.557995, -8.006418, 10.03545],
			[-1.557995, -10.62473, 10.03545],
			[1.557999, -8.006418, 5.245209e-06],
			[1.557999, -10.62473, 5.245209e-06],
			[1.557999, -8.006418, 10.03545],
			[1.557999, -8.006418, 10.03545],
			[1.557999, -10.62473, 5.245209e-06],
			[1.557999, -10.62473, 10.03545]
		],
		faces=[
			[0, 1, 2],
			[3, 4, 5],
			[6, 7, 8],
			[9, 10, 11],
			[12, 13, 14],
			[15, 16, 17],
			[18, 19, 20],
			[21, 22, 23],
			[24, 25, 26],
			[27, 28, 29],
			[30, 31, 32],
			[33, 34, 35],
			[36, 37, 38],
			[39, 40, 41],
			[42, 43, 44],
			[45, 46, 47],
			[48, 49, 50],
			[51, 52, 53],
			[54, 55, 56],
			[57, 58, 59],
			[60, 61, 62],
			[63, 64, 65],
			[66, 67, 68],
			[69, 70, 71],
			[72, 73, 74],
			[75, 76, 77],
			[78, 79, 80],
			[81, 82, 83],
			[84, 85, 86],
			[87, 88, 89],
			[90, 91, 92],
			[93, 94, 95],
			[96, 97, 98],
			[99, 100, 101],
			[102, 103, 104],
			[105, 106, 107],
			[108, 109, 110],
			[111, 112, 113],
			[114, 115, 116],
			[117, 118, 119],
			[120, 121, 122],
			[123, 124, 125],
			[126, 127, 128],
			[129, 130, 131],
			[132, 133, 134],
			[135, 136, 137],
			[138, 139, 140],
			[141, 142, 143],
			[144, 145, 146],
			[147, 148, 149],
			[150, 151, 152],
			[153, 154, 155],
			[156, 157, 158],
			[159, 160, 161],
			[162, 163, 164],
			[165, 166, 167],
			[168, 169, 170],
			[171, 172, 173],
			[174, 175, 176],
			[177, 178, 179],
			[180, 181, 182],
			[183, 184, 185],
			[186, 187, 188],
			[189, 190, 191],
			[192, 193, 194],
			[195, 196, 197],
			[198, 199, 200],
			[201, 202, 203],
			[204, 205, 206],
			[207, 208, 209],
			[210, 211, 212],
			[213, 214, 215],
			[216, 217, 218],
			[219, 220, 221],
			[222, 223, 224],
			[225, 226, 227],
			[228, 229, 230],
			[231, 232, 233],
			[234, 235, 236],
			[237, 238, 239],
			[240, 241, 242],
			[243, 244, 245],
			[246, 247, 248],
			[249, 250, 251],
			[252, 253, 254],
			[255, 256, 257],
			[258, 259, 260],
			[261, 262, 263],
			[264, 265, 266],
			[267, 268, 269],
			[270, 271, 272],
			[273, 274, 275],
			[276, 277, 278],
			[279, 280, 281],
			[282, 283, 284],
			[285, 286, 287],
			[288, 289, 290],
			[291, 292, 293],
			[294, 295, 296],
			[297, 298, 299],
			[300, 301, 302],
			[303, 304, 305],
			[306, 307, 308],
			[309, 310, 311],
			[312, 313, 314],
			[315, 316, 317],
			[318, 319, 320],
			[321, 322, 323],
			[324, 325, 326],
			[327, 328, 329],
			[330, 331, 332],
			[333, 334, 335],
			[336, 337, 338],
			[339, 340, 341],
			[342, 343, 344],
			[345, 346, 347],
			[348, 349, 350],
			[351, 352, 353],
			[354, 355, 356],
			[357, 358, 359],
			[360, 361, 362],
			[363, 364, 365],
			[366, 367, 368],
			[369, 370, 371],
			[372, 373, 374],
			[375, 376, 377],
			[378, 379, 380],
			[381, 382, 383],
			[384, 385, 386],
			[387, 388, 389],
			[390, 391, 392],
			[393, 394, 395],
			[396, 397, 398],
			[399, 400, 401],
			[402, 403, 404],
			[405, 406, 407],
			[408, 409, 410],
			[411, 412, 413],
			[414, 415, 416],
			[417, 418, 419],
			[420, 421, 422],
			[423, 424, 425],
			[426, 427, 428],
			[429, 430, 431],
			[432, 433, 434],
			[435, 436, 437],
			[438, 439, 440],
			[441, 442, 443],
			[444, 445, 446],
			[447, 448, 449],
			[450, 451, 452],
			[453, 454, 455],
			[456, 457, 458],
			[459, 460, 461],
			[462, 463, 464],
			[465, 466, 467],
			[468, 469, 470],
			[471, 472, 473],
			[474, 475, 476],
			[477, 478, 479],
			[480, 481, 482],
			[483, 484, 485],
			[486, 487, 488],
			[489, 490, 491],
			[492, 493, 494],
			[495, 496, 497],
			[498, 499, 500],
			[501, 502, 503],
			[504, 505, 506],
			[507, 508, 509],
			[510, 511, 512],
			[513, 514, 515],
			[516, 517, 518],
			[519, 520, 521],
			[522, 523, 524],
			[525, 526, 527],
			[528, 529, 530],
			[531, 532, 533],
			[534, 535, 536],
			[537, 538, 539],
			[540, 541, 542],
			[543, 544, 545],
			[546, 547, 548],
			[549, 550, 551],
			[552, 553, 554],
			[555, 556, 557],
			[558, 559, 560],
			[561, 562, 563],
			[564, 565, 566],
			[567, 568, 569],
			[570, 571, 572],
			[573, 574, 575],
			[576, 577, 578],
			[579, 580, 581],
			[582, 583, 584],
			[585, 586, 587],
			[588, 589, 590],
			[591, 592, 593],
			[594, 595, 596],
			[597, 598, 599],
			[600, 601, 602],
			[603, 604, 605],
			[606, 607, 608],
			[609, 610, 611],
			[612, 613, 614],
			[615, 616, 617],
			[618, 619, 620],
			[621, 622, 623],
			[624, 625, 626],
			[627, 628, 629],
			[630, 631, 632],
			[633, 634, 635],
			[636, 637, 638],
			[639, 640, 641],
			[642, 643, 644],
			[645, 646, 647],
			[648, 649, 650],
			[651, 652, 653],
			[654, 655, 656],
			[657, 658, 659],
			[660, 661, 662],
			[663, 664, 665],
			[666, 667, 668],
			[669, 670, 671],
			[672, 673, 674],
			[675, 676, 677],
			[678, 679, 680],
			[681, 682, 683],
			[684, 685, 686],
			[687, 688, 689],
			[690, 691, 692],
			[693, 694, 695],
			[696, 697, 698],
			[699, 700, 701],
			[702, 703, 704],
			[705, 706, 707]
		]
	);
}


invaders_v2_2();
